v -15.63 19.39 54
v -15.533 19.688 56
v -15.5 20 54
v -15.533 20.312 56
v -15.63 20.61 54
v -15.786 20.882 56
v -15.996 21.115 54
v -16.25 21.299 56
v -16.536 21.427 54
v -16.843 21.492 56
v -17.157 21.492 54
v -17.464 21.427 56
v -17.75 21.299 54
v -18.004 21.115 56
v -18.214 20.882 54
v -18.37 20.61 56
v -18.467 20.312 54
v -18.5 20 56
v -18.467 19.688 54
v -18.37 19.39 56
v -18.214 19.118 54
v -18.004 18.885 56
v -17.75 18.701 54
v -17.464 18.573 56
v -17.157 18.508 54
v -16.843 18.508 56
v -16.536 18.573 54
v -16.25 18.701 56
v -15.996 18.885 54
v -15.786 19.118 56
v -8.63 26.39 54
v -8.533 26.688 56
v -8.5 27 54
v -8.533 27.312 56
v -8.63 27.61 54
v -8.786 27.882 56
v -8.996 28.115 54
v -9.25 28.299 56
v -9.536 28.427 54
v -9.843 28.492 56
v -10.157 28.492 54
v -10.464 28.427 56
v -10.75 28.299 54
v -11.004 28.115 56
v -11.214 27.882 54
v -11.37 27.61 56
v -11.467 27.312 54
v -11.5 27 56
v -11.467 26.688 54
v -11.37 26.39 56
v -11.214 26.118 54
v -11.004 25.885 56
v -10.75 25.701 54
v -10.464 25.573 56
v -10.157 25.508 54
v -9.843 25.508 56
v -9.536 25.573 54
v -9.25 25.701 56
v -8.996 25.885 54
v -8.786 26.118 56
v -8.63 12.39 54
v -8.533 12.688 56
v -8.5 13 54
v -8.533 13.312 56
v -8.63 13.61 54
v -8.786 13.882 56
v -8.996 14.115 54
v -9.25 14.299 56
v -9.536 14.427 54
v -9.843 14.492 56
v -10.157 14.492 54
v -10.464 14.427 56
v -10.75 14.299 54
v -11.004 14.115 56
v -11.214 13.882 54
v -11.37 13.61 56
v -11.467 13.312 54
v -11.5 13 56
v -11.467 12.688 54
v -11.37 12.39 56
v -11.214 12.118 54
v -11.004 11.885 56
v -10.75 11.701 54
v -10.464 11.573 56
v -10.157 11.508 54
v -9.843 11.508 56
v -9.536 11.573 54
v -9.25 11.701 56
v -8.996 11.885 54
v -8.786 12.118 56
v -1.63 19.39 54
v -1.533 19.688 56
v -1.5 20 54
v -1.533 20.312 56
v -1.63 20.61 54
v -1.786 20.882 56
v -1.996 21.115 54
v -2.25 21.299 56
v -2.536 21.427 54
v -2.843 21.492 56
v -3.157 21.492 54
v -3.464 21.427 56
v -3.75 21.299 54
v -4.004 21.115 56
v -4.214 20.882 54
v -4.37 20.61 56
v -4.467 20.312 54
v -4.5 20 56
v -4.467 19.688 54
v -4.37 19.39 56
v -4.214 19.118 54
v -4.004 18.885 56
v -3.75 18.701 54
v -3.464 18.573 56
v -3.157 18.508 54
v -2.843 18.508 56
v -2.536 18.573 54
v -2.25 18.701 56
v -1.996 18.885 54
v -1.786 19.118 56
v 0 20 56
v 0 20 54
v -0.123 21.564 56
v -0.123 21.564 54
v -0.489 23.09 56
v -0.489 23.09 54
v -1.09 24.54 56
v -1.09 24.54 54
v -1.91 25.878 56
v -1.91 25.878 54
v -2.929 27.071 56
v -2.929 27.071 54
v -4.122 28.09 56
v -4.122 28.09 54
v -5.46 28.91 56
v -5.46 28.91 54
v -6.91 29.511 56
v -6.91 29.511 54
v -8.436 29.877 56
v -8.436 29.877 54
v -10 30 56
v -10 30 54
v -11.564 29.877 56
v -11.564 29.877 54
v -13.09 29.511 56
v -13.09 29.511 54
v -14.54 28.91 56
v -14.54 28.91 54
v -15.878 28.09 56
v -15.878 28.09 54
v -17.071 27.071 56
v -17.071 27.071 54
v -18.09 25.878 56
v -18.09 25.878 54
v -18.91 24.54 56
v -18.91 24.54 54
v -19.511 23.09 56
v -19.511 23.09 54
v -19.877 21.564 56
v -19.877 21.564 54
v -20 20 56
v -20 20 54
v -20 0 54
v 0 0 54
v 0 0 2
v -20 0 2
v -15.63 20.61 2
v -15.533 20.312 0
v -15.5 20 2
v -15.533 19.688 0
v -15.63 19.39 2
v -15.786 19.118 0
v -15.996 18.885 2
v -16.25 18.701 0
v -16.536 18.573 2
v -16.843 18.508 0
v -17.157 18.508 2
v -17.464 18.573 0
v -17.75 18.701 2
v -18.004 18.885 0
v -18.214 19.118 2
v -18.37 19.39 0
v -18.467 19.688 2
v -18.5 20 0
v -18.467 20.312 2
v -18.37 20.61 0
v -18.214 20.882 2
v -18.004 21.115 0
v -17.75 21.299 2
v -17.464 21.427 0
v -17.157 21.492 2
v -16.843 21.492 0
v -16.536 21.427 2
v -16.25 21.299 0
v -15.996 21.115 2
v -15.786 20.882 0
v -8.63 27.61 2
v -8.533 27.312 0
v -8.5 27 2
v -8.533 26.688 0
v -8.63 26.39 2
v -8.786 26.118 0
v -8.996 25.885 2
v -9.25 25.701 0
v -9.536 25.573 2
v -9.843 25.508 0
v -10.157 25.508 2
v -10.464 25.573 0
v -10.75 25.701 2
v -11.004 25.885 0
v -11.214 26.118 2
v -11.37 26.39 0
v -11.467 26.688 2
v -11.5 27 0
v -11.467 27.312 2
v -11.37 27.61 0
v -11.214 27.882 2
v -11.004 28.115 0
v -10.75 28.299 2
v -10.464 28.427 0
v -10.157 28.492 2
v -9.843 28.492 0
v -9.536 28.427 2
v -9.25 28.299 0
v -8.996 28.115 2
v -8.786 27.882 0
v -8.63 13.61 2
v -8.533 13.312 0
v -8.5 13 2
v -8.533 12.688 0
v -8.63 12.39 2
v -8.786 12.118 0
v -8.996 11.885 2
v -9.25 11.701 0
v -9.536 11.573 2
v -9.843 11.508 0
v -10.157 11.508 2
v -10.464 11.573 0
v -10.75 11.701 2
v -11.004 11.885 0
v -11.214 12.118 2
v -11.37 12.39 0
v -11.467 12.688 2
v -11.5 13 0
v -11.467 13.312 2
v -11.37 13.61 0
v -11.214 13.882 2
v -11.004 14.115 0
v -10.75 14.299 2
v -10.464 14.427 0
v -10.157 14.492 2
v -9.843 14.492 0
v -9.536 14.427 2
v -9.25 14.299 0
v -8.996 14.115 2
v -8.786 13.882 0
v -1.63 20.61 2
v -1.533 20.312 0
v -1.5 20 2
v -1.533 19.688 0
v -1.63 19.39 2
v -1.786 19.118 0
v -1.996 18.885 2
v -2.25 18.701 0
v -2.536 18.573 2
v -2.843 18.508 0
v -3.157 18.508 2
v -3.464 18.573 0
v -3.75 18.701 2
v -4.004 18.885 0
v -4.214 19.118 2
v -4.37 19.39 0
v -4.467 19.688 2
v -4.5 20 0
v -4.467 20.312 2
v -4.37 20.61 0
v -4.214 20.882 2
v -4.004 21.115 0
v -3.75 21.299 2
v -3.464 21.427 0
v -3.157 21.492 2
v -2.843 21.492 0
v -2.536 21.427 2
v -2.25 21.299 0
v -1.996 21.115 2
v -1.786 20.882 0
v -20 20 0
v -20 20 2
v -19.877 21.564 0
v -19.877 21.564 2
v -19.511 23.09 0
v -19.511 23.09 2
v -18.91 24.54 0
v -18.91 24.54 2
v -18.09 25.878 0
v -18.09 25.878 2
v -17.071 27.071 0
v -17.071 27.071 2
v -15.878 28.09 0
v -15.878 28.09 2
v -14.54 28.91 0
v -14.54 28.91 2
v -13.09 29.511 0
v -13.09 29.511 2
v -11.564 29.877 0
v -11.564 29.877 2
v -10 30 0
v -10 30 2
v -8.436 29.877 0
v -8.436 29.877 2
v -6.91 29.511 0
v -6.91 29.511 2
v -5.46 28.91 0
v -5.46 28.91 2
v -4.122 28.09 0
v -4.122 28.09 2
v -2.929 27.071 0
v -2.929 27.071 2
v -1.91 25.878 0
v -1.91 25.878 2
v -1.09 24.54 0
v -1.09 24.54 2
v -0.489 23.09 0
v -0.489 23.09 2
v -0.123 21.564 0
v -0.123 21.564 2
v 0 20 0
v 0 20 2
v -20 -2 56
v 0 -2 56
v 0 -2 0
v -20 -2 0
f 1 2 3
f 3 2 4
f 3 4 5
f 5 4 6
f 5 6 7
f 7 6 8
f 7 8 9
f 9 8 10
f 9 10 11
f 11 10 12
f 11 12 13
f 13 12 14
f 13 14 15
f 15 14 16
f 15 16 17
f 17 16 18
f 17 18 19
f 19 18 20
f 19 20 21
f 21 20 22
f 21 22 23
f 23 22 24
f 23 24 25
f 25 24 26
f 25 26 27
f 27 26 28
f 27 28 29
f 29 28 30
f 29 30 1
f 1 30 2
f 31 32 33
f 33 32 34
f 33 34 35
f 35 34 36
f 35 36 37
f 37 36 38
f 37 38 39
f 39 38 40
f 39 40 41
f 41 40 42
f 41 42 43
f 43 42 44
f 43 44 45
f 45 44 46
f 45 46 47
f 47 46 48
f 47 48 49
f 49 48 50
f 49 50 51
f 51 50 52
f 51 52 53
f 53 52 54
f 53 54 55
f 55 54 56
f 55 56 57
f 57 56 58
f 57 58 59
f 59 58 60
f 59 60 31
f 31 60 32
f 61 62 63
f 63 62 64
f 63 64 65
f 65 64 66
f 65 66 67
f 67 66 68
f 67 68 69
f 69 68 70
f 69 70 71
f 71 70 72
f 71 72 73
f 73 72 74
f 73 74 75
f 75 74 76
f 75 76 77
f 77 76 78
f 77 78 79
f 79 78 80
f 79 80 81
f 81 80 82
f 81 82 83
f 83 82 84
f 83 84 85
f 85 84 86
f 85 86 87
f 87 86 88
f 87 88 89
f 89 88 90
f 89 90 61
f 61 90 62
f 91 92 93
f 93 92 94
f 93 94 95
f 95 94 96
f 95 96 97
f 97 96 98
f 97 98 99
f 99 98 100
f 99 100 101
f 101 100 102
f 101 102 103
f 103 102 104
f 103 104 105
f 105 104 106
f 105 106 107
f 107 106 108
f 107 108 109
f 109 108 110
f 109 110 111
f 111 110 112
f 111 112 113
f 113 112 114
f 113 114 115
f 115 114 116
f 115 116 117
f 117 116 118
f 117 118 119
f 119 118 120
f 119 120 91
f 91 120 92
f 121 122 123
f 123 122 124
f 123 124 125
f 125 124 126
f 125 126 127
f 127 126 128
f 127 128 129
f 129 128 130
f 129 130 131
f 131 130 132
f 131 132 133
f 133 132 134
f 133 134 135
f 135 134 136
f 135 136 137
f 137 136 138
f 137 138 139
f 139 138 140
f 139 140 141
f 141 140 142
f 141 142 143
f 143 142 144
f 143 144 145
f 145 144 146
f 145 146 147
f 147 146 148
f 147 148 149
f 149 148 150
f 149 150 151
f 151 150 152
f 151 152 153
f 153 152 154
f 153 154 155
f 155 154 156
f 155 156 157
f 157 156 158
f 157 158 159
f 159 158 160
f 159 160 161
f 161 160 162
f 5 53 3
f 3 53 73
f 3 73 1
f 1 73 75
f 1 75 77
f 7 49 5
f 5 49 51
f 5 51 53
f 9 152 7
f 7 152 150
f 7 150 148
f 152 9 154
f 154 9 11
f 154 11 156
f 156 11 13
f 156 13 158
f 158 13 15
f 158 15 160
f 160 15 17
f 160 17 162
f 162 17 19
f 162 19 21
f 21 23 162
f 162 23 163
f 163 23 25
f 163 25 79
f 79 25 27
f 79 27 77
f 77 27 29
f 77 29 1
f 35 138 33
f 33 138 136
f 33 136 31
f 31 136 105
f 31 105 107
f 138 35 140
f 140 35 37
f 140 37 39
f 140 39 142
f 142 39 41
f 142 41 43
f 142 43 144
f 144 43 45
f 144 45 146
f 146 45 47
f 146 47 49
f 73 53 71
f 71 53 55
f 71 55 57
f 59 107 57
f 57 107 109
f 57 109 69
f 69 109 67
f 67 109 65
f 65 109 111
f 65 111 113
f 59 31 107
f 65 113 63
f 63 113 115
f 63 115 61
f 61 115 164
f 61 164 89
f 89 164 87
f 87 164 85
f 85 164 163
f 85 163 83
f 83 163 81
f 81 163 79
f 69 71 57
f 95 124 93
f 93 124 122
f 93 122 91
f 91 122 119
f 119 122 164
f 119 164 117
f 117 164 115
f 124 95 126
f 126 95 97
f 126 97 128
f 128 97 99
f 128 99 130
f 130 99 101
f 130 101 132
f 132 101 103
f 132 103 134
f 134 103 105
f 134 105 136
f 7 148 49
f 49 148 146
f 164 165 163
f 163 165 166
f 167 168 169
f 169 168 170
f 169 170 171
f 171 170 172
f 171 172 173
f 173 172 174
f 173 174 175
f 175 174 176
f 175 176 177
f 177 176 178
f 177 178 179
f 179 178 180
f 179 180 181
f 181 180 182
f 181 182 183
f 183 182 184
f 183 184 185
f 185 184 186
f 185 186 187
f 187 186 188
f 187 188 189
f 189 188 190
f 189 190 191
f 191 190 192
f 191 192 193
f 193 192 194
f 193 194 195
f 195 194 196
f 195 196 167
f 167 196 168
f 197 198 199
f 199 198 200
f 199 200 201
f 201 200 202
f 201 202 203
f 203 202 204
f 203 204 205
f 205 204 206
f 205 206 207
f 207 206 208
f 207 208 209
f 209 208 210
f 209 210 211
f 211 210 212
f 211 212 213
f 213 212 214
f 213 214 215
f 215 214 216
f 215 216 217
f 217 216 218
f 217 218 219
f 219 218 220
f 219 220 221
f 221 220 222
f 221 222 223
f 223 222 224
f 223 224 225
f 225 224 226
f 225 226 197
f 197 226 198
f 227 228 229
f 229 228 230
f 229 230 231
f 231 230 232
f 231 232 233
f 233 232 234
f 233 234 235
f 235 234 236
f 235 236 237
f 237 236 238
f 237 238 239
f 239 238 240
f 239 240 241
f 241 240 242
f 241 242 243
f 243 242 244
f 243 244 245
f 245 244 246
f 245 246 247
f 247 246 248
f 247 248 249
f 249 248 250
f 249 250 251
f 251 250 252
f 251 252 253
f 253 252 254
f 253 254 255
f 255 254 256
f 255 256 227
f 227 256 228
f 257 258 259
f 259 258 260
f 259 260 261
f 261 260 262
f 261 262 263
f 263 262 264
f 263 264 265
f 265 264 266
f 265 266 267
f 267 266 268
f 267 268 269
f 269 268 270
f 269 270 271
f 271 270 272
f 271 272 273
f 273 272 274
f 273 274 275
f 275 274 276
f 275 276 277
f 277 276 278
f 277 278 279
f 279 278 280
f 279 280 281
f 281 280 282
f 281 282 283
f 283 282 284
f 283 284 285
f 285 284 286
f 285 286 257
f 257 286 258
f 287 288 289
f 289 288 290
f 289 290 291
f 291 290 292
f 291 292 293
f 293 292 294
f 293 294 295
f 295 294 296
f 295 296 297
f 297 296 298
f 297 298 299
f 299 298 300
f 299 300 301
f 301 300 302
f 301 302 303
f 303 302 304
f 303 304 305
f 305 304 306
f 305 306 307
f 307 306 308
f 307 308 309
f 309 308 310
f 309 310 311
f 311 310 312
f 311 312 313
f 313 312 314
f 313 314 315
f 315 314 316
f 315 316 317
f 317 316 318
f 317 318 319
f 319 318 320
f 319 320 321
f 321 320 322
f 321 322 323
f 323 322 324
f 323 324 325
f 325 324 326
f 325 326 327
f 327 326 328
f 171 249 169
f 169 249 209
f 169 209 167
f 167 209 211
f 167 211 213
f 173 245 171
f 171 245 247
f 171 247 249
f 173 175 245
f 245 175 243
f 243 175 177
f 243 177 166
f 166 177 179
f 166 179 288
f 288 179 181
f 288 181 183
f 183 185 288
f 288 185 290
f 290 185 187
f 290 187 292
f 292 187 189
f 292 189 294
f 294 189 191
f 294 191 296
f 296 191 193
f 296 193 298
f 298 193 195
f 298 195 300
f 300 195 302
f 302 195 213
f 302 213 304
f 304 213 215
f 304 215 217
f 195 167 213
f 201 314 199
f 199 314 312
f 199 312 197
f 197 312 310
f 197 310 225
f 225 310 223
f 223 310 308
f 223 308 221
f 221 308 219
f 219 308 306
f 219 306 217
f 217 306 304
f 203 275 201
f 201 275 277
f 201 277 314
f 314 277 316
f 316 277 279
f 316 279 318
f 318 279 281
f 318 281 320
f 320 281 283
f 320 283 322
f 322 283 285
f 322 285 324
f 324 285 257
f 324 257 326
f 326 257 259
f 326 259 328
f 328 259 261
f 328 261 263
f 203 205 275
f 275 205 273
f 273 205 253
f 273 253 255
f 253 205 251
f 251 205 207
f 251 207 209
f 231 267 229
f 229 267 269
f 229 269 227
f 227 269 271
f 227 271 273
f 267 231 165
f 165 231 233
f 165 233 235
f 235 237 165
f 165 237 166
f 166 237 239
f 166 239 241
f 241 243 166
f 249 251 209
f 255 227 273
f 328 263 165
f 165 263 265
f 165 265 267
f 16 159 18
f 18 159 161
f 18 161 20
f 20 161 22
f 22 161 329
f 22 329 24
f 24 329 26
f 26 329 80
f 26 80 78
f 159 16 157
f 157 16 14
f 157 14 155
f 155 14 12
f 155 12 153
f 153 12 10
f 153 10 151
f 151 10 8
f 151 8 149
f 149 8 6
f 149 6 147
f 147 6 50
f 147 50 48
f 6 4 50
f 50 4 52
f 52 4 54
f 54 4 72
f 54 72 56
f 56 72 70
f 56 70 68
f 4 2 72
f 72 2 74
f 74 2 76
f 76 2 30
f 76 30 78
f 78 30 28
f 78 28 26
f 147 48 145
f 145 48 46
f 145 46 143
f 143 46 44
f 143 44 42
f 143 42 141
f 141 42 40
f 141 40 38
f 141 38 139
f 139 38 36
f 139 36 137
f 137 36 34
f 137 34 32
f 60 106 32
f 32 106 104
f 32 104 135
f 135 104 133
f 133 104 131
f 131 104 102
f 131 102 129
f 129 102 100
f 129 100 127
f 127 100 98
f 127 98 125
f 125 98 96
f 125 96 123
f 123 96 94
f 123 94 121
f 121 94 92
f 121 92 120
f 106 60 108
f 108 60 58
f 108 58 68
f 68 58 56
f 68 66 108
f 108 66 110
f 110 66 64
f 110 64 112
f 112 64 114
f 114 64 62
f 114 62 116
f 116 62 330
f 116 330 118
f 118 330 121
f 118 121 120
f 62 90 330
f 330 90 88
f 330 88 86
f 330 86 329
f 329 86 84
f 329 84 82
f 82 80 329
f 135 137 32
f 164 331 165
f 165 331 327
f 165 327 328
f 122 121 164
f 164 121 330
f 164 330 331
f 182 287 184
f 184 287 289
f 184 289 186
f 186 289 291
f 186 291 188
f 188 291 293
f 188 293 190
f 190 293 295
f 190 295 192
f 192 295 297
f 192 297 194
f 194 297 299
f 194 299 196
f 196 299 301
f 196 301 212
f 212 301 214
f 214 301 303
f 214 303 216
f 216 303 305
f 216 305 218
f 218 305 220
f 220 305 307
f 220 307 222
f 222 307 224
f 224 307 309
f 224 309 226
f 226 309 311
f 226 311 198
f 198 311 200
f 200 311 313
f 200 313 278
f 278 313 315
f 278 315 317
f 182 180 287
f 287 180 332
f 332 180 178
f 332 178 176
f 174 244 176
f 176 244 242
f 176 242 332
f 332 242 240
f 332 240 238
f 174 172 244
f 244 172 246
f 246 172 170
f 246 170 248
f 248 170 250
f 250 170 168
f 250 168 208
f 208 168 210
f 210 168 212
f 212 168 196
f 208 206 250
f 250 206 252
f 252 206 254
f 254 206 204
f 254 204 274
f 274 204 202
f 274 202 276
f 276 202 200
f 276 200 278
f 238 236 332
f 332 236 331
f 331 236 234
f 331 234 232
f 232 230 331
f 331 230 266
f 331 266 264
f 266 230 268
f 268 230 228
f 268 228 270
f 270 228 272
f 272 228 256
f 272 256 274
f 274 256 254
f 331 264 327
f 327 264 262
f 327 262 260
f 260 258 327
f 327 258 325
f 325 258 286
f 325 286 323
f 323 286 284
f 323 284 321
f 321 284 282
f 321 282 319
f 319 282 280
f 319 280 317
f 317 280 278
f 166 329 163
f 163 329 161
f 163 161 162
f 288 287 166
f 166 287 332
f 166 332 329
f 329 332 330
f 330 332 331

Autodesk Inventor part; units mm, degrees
ref_plane "YZ Plane" through (0, 0, 0) normal (1, 0, 0) x (0, 1, 0)
ref_plane "XZ Plane" through (0, 0, 0) normal (0, 1, 0) x (-1, 0, 0)
ref_plane "Work Plane1" through (-10, 0, 28) normal (0, -1, 0) x (1, 0, 0)
sketch "Sketch3" plane through (-10, 0, 28) normal (0, -1, 0) x (1, 0, 0)
  line L0 (-10, -28) -> (10, -28)
  line L1 (10, -28) -> (10, 28)
  line L2 (10, 28) -> (-10, 28)
  line L3 (-10, 28) -> (-10, -28)
  line L4 (10, 28) -> (-10, 28)
  line L5 (-10, 28) -> (-10, 31)
  line L6 (-10, 31) -> (10, 31)
  line L7 (10, 31) -> (10, 28)
  line L8 (10, -28) -> (-10, -28)
  line L9 (-10, -28) -> (-10, -31)
  line L10 (-10, -31) -> (10, -31)
  line L11 (10, -31) -> (10, -28)
  line L12 (10, 28) -> (5, 28)
  line L13 (5, 28) -> (5, -28)
  line L14 (-10, 28) -> (-5, 28)
  line L15 (-5, 28) -> (-5, -28)
  line L16 (5, 28) -> (5, 14)
  circle A0 centre (5, 14) radius 1.5
  line L17 (5, 14) -> (5, 4)
  circle A1 centre (5, 4) radius 1.5
  line L18 (10, 28) -> (10, 0)
  line L19 (10, 0) -> (-10, 0)
  circle A2 centre (0, 0) radius 3
  line L20 (0, 28) -> (0, -28)
  circle A3 centre (-5, 4) radius 1.5
  circle A4 centre (-5, 14) radius 1.5
  circle A5 centre (5, -14) radius 1.5
  circle A6 centre (5, -4) radius 1.5
  circle A7 centre (-5, -4) radius 1.5
  circle A8 centre (-5, -14) radius 1.5
  point P0 (10, -28)
  point P1 (-10, 28)
  dimension "d13" = 20
  dimension "d14" = 56
  dimension "d15" = 3
  dimension "d16" = 3
  dimension "d17" = 5
  dimension "d18" = 5
  dimension "d19" = 14
  dimension "d20" = 3
  dimension "d21" = 10
  dimension "d22" = 3
  dimension "d23" = 6
extrude "Extrusion2" add sketch "Sketch3" along normal blind 2 contours L3 L19 L15 A7 A8 L0 | L15 A8 A7 L19 A2 L20 L0 | L3 L2 L15 A4 A3 L19 | L20 A2 L19 L13 A6 A5 L0 | A8 L15 | L15 A8 | L15 A3 A4 L2 L20 A2 L19 | L13 A5 A6 L19 L1 L0 | L20 L19 A2 | A2 L19 L20 | A3 L15 | L15 A3 | A7 L15 | L15 A7 | A2 L20 L19 | A5 L13 | L13 A5 | A2 L20 L2 L13 A0 A1 L19 | L19 L20 A2 | A4 L15 | L15 A4 | L19 L13 A1 A0 L2 L1 | A6 L13 | L13 A6 | A1 L13 | L13 A1 | A0 L13 | L13 A0
sketch "Sketch5" plane through (-10, 0, 28) normal (0, 1, 0) x (1, 0, 0)
  line L0 (-10, -28) -> (-10, 28) projected
  line L1 (10, 28) -> (-10, 28)
  line L2 (-10, 28) -> (-10, 26)
  line L3 (-10, 26) -> (10, 26)
  line L4 (10, 26) -> (10, 28)
  line L5 (10, 28) -> (10, -28) projected
  line L6 (10, -28) -> (-10, -28)
  line L7 (-10, -28) -> (-10, -26)
  line L8 (-10, -26) -> (10, -26)
  line L9 (10, -26) -> (10, -28)
  dimension "d26" = 2
  dimension "d27" = 2
extrude "Extrusion3" add sketch "Sketch5" along normal blind 20 contours L0 L1 L4 L3
sketch "Sketch6" plane through (0, -2, 0) normal (0, 0, -1) x (-1, 0, 0)
  line L0 (0, 22) -> (20, 22) projected
  circle A0 centre (10, 22) radius 10
  point P0 (0, 2)
extrude "Extrusion4" add sketch "Sketch6" against normal up to surface (2 mm away) contours A0 L0 picked at (13.2365, 22.7977)
sketch "Sketch7" plane through (0, -2, 0) normal (0, 0, -1) x (-1, 0, 0)
  arc A0 (20, 22) -> (0, 22) centre (10, 22) ccw projected
  circle A1 centre (10, 22) radius 7
  circle A2 centre (10, 15) radius 1.5
  circle A3 centre (3, 22) radius 1.5
  circle A4 centre (10, 29) radius 1.5
  circle A5 centre (17, 22) radius 1.5
  point P0 (0, 2)
  dimension "d32" = 14
  dimension "d33" = 3
  dimension "d34" = 3
  dimension "d35" = 3
  dimension "d36" = 3
extrude "Extrusion5" cut sketch "Sketch7" against normal blind 10 contours A1 A5 | A1 A5 | A4 A1 | A1 A4 | A2 A1 | A1 A2 | A3 A1 | A1 A3
ref_plane "Work Plane2" through (-20, 0, 28) normal (0, 0, 1) x (1, 0, 0)
mirror "Mirror1" about plane through (-20, 0, 28) normal (0, 0, 1) of "Extrusion4", "Extrusion5", "Extrusion3"
properties part number "Bracket"
